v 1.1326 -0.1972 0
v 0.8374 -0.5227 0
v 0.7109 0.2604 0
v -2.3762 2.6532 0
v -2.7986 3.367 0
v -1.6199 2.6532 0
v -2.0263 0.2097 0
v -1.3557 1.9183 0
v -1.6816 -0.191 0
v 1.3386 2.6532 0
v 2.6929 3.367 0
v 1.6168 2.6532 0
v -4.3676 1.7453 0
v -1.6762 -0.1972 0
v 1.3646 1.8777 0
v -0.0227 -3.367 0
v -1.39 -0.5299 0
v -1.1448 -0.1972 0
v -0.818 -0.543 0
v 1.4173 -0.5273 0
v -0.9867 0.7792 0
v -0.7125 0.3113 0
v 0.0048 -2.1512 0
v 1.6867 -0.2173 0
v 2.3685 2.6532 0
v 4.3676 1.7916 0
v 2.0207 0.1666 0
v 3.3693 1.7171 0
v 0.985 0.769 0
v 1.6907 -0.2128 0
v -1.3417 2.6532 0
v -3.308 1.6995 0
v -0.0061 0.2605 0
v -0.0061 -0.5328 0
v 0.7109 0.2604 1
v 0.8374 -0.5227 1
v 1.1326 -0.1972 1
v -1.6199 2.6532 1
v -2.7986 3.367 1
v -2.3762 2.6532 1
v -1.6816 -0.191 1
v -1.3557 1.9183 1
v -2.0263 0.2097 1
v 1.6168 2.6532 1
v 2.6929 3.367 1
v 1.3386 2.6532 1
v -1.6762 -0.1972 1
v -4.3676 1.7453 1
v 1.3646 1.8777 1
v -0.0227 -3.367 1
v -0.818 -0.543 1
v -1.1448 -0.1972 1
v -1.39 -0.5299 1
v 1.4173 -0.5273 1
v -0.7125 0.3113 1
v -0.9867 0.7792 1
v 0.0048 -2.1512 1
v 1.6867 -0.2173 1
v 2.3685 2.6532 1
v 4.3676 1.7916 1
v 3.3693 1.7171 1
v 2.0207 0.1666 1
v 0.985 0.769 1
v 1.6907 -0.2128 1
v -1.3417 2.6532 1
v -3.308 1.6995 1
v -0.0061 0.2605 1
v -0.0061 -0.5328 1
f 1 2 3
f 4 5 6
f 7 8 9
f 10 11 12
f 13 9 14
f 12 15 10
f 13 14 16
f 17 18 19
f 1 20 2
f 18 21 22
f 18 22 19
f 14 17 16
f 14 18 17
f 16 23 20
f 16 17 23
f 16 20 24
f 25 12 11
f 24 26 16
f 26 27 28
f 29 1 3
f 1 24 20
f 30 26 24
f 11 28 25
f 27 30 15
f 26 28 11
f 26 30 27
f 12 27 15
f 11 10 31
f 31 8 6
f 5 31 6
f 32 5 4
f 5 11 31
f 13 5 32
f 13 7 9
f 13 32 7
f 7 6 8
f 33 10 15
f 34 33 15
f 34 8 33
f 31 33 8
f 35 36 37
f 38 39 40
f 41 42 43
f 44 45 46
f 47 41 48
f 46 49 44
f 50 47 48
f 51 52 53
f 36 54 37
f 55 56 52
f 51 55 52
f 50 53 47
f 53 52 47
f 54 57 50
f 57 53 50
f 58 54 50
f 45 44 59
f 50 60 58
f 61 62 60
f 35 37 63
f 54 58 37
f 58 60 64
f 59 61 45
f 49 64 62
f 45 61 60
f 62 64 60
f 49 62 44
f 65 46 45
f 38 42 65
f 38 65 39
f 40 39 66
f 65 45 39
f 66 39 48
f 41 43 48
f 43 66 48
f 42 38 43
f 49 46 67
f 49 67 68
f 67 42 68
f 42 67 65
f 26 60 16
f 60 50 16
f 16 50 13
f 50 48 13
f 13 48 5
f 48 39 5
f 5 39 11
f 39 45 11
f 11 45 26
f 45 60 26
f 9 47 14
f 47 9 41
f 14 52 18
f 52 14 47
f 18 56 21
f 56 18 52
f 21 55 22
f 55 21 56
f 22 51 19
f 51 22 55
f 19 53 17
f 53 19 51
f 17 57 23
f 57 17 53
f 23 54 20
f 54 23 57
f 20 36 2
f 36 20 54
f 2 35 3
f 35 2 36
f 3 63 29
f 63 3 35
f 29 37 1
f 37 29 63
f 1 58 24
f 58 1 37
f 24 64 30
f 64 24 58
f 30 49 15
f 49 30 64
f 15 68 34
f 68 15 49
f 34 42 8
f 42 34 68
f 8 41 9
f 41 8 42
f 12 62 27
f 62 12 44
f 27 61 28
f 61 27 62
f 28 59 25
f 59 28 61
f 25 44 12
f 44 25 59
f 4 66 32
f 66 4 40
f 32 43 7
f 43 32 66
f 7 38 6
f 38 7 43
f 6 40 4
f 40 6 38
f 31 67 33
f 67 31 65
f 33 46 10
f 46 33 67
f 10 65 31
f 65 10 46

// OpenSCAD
// Module names are of the form poly_<inkscape-path-id>().
// As a result you can associate a polygon in this OpenSCAD program with the
//  corresponding SVG element in the Inkscape document by looking for 
//  the XML element with the attribute id="inkscape-path-id".

// Paths have their own variables so they can be imported and used 
//  in polygon(points) structures in other programs.
// The NN_points is the list of all polygon XY vertices. 
// There may be an NN_paths variable as well. If it exists then it 
//  defines the nested paths. Both must be used in the 
//  polygon(points, paths) variant of the command.

profile_scale = 25.4/90; //made in inkscape in mm

// helper functions to determine the X,Y dimensions of the profiles
function min_x(shape_points) = min([ for (x = shape_points) min(x[0])]);
function max_x(shape_points) = max([ for (x = shape_points) max(x[0])]);
function min_y(shape_points) = min([ for (x = shape_points) min(x[1])]);
function max_y(shape_points) = max([ for (x = shape_points) max(x[1])]);

height = 1;
width = 1.0;


path4528_0_points = [[-9.916402,-11.930500],[-15.475791,-6.184080],[-0.080348,11.930500],[15.475791,-6.348160],[9.541882,-11.930500],[-9.916402,-11.930500],[-8.419642,-9.401090],[-5.739662,-9.401090],[-7.179932,-0.743090],[-11.721072,-6.021800],[-8.419642,-9.401090],[-4.754060,-9.401090],[4.743251,-9.401090],[-0.021604,-0.922930],[-4.754060,-9.401090],[5.728861,-9.401090],[8.392411,-9.401090],[11.938491,-6.084150],[7.159902,-0.590260],[5.728861,-9.401090],[-4.803576,-6.797190],[-0.021604,1.888050],[4.835311,-6.653140],[5.990631,0.754120],[5.976631,0.770120],[4.013291,0.698820],[3.490212,-2.724820],[2.519012,-0.922860],[2.967132,1.852110],[5.021852,1.868310],[0.017064,7.622390],[-4.925382,1.877540],[-2.898347,1.924140],[-2.524725,-1.103140],[-3.496150,-2.760830],[-4.056364,0.698820],[-5.939352,0.698820],[-5.958451,0.676720],[-4.803576,-6.797190]];
path4528_0_paths = [[0,1,2,3,4,5],
				[6,7,8,9,10],
				[11,12,13,14],
				[15,16,17,18,19],
				[20,21,22,23,24,25,26,27,28,29,30,31,32,33,34,35,36,37,38]];

module poly_path4528(h, w, res=4)  {
  scale([profile_scale, -profile_scale, 1])
  union()  {
    linear_extrude(height=h)
      polygon(path4528_0_points, path4528_0_paths);
  }
}

// The shapes
poly_path4528(height, width);
